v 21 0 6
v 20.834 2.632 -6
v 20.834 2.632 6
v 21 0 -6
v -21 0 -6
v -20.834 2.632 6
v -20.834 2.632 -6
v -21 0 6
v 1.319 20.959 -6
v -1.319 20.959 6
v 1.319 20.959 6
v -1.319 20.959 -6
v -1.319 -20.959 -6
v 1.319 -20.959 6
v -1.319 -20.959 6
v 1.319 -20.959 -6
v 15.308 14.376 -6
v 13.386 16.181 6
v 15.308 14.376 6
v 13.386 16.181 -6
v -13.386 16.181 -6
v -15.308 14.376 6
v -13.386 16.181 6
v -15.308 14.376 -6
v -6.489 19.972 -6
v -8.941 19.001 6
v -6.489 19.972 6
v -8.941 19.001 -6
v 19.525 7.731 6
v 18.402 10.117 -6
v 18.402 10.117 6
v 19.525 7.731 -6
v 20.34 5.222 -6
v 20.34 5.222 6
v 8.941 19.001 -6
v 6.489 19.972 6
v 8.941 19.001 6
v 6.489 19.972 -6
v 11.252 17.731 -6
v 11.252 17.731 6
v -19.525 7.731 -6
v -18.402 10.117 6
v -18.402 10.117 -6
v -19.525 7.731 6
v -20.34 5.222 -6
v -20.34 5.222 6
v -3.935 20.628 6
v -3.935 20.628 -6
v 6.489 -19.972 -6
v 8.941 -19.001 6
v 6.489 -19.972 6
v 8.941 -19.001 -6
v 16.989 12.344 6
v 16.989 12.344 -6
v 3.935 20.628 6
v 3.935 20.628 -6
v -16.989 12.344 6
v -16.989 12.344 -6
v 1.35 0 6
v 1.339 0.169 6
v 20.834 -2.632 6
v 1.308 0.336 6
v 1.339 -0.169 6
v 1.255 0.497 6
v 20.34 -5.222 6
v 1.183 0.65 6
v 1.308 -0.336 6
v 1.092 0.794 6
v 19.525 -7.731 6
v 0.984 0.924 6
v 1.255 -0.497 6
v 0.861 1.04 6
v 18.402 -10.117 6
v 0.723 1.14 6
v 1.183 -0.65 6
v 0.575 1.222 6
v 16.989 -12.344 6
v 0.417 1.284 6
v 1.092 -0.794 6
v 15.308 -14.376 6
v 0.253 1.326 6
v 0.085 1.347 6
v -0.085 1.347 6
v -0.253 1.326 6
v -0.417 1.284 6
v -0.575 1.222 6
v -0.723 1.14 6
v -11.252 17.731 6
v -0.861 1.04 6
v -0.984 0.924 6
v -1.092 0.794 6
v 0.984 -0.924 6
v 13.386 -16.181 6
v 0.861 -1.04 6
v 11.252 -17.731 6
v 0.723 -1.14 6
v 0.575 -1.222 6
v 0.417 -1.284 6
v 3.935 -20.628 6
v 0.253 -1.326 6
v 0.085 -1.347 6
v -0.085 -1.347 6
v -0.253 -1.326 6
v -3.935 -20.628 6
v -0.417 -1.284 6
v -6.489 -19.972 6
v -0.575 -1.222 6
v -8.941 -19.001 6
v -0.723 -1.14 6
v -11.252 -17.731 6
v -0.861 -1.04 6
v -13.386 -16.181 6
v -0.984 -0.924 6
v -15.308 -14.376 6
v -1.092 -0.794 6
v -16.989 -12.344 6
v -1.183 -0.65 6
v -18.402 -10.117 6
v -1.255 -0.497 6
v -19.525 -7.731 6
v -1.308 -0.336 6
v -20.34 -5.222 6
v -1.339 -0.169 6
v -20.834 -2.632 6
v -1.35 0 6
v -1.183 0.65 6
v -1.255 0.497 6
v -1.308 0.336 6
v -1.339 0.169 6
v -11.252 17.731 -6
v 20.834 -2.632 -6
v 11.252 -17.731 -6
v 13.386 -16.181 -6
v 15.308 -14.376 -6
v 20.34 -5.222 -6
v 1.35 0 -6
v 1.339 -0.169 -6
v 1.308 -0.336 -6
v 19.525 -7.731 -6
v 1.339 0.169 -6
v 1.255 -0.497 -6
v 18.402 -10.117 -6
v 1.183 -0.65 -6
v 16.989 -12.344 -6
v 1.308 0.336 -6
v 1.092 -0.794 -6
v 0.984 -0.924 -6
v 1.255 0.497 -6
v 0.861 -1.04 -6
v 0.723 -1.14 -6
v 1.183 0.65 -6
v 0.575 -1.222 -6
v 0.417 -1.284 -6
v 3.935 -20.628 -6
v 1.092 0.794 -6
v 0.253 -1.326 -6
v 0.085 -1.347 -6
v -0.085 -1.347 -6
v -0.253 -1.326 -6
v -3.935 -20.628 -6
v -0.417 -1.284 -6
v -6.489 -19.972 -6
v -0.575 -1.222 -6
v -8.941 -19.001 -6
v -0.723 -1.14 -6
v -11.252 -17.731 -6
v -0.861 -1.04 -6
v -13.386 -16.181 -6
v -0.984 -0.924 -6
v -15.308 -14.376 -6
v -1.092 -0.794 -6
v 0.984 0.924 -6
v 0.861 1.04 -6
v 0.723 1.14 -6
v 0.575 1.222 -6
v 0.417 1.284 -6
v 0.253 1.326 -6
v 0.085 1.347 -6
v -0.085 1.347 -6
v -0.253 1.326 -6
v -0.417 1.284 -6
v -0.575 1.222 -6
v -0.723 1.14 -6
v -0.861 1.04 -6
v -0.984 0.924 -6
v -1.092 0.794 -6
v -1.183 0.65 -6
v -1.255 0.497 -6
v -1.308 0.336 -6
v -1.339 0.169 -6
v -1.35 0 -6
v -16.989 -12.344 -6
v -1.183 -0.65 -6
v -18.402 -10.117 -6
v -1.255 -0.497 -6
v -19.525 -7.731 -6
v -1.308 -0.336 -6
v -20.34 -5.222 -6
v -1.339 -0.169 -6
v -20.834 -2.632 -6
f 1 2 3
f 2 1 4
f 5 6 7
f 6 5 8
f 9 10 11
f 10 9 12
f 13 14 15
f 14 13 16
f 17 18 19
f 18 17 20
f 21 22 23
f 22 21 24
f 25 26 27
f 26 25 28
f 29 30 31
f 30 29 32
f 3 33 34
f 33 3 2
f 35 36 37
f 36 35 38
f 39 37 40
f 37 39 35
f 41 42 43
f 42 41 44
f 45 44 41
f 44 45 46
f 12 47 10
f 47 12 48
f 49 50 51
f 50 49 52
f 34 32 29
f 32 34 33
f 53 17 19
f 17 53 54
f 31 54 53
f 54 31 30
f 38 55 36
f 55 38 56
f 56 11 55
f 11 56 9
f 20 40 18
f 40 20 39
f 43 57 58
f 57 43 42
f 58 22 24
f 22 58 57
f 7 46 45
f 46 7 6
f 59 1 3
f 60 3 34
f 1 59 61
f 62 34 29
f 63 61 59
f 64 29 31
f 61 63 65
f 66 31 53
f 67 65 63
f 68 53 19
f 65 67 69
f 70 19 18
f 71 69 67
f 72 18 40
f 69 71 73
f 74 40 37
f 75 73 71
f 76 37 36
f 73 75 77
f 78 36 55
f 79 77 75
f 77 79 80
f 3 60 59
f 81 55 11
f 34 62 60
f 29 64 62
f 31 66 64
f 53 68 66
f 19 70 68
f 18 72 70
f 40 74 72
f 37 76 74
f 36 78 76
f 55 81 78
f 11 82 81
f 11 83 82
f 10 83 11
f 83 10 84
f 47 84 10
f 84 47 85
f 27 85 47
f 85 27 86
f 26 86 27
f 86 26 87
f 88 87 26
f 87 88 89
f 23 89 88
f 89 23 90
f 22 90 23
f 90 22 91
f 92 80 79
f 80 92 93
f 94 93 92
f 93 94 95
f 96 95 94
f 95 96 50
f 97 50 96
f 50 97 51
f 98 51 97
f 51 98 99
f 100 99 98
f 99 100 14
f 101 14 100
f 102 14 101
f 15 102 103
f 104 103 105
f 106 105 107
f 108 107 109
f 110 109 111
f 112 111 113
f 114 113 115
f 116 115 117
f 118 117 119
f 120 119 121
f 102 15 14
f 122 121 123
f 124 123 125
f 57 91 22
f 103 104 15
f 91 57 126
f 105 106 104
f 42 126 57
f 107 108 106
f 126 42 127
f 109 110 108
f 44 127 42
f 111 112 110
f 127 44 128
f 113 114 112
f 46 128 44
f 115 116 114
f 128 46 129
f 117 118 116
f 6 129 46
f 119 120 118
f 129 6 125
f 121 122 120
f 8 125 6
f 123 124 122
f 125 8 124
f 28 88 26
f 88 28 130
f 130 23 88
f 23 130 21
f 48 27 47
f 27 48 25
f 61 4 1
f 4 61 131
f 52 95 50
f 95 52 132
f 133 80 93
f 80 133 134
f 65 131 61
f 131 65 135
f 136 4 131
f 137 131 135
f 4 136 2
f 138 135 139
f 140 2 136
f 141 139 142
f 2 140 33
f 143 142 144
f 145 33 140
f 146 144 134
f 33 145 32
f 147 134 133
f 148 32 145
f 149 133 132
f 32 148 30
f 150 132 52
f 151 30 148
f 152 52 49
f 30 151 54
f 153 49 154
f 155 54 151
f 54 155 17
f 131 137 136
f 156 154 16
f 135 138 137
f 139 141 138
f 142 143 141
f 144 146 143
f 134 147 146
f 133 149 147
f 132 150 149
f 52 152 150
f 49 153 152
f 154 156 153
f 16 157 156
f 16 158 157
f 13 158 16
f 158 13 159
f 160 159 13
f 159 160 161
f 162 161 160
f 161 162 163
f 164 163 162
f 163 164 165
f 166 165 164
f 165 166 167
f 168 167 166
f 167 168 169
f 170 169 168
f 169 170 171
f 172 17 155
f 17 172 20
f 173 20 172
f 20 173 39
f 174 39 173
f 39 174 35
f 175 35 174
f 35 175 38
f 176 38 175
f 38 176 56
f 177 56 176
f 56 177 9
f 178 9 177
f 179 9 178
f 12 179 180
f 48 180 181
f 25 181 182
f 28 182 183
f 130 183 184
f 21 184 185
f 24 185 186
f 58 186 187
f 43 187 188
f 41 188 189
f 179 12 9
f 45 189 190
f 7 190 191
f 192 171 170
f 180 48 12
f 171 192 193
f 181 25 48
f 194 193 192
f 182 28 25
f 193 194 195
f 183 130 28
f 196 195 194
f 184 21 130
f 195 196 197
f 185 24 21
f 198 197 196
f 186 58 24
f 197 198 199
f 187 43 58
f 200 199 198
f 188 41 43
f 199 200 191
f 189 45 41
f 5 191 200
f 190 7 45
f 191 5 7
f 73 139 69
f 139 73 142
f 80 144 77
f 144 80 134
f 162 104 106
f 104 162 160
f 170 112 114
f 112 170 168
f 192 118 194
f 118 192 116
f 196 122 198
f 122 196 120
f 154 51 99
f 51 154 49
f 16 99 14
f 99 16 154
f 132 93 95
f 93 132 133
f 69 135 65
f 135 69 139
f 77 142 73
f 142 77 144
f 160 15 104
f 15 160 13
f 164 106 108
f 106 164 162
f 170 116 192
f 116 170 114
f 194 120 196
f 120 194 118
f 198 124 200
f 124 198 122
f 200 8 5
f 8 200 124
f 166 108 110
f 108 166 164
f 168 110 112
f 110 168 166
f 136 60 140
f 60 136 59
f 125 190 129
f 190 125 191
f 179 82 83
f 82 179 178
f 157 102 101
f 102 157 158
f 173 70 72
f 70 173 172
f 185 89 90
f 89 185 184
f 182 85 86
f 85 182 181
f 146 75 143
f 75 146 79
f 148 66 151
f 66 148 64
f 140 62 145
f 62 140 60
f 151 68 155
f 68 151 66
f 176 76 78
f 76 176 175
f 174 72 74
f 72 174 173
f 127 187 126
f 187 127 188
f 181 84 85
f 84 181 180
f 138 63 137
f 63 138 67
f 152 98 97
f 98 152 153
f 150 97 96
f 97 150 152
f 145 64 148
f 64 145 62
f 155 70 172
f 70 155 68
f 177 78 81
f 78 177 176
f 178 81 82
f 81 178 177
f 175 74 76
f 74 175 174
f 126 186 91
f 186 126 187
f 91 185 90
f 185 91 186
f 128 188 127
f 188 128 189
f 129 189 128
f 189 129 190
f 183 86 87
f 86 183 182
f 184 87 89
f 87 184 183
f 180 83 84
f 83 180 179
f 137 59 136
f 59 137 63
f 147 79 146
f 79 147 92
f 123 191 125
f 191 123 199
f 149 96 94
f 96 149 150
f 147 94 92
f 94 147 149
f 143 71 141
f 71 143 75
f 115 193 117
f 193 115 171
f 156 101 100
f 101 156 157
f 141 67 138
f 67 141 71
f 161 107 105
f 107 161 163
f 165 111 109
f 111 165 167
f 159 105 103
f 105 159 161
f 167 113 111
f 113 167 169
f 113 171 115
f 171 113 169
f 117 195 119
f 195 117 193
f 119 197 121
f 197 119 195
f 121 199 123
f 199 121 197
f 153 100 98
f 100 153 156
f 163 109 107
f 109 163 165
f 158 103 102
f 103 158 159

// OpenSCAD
$fn = 50;


difference() {
	union() {
		translate(v = [0, 0, -6.0000000000]) {
			cylinder(h = 12, r = 21.0000000000);
		}
	}
	union() {
		translate(v = [0, 0, -100.0000000000]) {
			cylinder(h = 200, r = 1.3500000000);
		}
	}
}
